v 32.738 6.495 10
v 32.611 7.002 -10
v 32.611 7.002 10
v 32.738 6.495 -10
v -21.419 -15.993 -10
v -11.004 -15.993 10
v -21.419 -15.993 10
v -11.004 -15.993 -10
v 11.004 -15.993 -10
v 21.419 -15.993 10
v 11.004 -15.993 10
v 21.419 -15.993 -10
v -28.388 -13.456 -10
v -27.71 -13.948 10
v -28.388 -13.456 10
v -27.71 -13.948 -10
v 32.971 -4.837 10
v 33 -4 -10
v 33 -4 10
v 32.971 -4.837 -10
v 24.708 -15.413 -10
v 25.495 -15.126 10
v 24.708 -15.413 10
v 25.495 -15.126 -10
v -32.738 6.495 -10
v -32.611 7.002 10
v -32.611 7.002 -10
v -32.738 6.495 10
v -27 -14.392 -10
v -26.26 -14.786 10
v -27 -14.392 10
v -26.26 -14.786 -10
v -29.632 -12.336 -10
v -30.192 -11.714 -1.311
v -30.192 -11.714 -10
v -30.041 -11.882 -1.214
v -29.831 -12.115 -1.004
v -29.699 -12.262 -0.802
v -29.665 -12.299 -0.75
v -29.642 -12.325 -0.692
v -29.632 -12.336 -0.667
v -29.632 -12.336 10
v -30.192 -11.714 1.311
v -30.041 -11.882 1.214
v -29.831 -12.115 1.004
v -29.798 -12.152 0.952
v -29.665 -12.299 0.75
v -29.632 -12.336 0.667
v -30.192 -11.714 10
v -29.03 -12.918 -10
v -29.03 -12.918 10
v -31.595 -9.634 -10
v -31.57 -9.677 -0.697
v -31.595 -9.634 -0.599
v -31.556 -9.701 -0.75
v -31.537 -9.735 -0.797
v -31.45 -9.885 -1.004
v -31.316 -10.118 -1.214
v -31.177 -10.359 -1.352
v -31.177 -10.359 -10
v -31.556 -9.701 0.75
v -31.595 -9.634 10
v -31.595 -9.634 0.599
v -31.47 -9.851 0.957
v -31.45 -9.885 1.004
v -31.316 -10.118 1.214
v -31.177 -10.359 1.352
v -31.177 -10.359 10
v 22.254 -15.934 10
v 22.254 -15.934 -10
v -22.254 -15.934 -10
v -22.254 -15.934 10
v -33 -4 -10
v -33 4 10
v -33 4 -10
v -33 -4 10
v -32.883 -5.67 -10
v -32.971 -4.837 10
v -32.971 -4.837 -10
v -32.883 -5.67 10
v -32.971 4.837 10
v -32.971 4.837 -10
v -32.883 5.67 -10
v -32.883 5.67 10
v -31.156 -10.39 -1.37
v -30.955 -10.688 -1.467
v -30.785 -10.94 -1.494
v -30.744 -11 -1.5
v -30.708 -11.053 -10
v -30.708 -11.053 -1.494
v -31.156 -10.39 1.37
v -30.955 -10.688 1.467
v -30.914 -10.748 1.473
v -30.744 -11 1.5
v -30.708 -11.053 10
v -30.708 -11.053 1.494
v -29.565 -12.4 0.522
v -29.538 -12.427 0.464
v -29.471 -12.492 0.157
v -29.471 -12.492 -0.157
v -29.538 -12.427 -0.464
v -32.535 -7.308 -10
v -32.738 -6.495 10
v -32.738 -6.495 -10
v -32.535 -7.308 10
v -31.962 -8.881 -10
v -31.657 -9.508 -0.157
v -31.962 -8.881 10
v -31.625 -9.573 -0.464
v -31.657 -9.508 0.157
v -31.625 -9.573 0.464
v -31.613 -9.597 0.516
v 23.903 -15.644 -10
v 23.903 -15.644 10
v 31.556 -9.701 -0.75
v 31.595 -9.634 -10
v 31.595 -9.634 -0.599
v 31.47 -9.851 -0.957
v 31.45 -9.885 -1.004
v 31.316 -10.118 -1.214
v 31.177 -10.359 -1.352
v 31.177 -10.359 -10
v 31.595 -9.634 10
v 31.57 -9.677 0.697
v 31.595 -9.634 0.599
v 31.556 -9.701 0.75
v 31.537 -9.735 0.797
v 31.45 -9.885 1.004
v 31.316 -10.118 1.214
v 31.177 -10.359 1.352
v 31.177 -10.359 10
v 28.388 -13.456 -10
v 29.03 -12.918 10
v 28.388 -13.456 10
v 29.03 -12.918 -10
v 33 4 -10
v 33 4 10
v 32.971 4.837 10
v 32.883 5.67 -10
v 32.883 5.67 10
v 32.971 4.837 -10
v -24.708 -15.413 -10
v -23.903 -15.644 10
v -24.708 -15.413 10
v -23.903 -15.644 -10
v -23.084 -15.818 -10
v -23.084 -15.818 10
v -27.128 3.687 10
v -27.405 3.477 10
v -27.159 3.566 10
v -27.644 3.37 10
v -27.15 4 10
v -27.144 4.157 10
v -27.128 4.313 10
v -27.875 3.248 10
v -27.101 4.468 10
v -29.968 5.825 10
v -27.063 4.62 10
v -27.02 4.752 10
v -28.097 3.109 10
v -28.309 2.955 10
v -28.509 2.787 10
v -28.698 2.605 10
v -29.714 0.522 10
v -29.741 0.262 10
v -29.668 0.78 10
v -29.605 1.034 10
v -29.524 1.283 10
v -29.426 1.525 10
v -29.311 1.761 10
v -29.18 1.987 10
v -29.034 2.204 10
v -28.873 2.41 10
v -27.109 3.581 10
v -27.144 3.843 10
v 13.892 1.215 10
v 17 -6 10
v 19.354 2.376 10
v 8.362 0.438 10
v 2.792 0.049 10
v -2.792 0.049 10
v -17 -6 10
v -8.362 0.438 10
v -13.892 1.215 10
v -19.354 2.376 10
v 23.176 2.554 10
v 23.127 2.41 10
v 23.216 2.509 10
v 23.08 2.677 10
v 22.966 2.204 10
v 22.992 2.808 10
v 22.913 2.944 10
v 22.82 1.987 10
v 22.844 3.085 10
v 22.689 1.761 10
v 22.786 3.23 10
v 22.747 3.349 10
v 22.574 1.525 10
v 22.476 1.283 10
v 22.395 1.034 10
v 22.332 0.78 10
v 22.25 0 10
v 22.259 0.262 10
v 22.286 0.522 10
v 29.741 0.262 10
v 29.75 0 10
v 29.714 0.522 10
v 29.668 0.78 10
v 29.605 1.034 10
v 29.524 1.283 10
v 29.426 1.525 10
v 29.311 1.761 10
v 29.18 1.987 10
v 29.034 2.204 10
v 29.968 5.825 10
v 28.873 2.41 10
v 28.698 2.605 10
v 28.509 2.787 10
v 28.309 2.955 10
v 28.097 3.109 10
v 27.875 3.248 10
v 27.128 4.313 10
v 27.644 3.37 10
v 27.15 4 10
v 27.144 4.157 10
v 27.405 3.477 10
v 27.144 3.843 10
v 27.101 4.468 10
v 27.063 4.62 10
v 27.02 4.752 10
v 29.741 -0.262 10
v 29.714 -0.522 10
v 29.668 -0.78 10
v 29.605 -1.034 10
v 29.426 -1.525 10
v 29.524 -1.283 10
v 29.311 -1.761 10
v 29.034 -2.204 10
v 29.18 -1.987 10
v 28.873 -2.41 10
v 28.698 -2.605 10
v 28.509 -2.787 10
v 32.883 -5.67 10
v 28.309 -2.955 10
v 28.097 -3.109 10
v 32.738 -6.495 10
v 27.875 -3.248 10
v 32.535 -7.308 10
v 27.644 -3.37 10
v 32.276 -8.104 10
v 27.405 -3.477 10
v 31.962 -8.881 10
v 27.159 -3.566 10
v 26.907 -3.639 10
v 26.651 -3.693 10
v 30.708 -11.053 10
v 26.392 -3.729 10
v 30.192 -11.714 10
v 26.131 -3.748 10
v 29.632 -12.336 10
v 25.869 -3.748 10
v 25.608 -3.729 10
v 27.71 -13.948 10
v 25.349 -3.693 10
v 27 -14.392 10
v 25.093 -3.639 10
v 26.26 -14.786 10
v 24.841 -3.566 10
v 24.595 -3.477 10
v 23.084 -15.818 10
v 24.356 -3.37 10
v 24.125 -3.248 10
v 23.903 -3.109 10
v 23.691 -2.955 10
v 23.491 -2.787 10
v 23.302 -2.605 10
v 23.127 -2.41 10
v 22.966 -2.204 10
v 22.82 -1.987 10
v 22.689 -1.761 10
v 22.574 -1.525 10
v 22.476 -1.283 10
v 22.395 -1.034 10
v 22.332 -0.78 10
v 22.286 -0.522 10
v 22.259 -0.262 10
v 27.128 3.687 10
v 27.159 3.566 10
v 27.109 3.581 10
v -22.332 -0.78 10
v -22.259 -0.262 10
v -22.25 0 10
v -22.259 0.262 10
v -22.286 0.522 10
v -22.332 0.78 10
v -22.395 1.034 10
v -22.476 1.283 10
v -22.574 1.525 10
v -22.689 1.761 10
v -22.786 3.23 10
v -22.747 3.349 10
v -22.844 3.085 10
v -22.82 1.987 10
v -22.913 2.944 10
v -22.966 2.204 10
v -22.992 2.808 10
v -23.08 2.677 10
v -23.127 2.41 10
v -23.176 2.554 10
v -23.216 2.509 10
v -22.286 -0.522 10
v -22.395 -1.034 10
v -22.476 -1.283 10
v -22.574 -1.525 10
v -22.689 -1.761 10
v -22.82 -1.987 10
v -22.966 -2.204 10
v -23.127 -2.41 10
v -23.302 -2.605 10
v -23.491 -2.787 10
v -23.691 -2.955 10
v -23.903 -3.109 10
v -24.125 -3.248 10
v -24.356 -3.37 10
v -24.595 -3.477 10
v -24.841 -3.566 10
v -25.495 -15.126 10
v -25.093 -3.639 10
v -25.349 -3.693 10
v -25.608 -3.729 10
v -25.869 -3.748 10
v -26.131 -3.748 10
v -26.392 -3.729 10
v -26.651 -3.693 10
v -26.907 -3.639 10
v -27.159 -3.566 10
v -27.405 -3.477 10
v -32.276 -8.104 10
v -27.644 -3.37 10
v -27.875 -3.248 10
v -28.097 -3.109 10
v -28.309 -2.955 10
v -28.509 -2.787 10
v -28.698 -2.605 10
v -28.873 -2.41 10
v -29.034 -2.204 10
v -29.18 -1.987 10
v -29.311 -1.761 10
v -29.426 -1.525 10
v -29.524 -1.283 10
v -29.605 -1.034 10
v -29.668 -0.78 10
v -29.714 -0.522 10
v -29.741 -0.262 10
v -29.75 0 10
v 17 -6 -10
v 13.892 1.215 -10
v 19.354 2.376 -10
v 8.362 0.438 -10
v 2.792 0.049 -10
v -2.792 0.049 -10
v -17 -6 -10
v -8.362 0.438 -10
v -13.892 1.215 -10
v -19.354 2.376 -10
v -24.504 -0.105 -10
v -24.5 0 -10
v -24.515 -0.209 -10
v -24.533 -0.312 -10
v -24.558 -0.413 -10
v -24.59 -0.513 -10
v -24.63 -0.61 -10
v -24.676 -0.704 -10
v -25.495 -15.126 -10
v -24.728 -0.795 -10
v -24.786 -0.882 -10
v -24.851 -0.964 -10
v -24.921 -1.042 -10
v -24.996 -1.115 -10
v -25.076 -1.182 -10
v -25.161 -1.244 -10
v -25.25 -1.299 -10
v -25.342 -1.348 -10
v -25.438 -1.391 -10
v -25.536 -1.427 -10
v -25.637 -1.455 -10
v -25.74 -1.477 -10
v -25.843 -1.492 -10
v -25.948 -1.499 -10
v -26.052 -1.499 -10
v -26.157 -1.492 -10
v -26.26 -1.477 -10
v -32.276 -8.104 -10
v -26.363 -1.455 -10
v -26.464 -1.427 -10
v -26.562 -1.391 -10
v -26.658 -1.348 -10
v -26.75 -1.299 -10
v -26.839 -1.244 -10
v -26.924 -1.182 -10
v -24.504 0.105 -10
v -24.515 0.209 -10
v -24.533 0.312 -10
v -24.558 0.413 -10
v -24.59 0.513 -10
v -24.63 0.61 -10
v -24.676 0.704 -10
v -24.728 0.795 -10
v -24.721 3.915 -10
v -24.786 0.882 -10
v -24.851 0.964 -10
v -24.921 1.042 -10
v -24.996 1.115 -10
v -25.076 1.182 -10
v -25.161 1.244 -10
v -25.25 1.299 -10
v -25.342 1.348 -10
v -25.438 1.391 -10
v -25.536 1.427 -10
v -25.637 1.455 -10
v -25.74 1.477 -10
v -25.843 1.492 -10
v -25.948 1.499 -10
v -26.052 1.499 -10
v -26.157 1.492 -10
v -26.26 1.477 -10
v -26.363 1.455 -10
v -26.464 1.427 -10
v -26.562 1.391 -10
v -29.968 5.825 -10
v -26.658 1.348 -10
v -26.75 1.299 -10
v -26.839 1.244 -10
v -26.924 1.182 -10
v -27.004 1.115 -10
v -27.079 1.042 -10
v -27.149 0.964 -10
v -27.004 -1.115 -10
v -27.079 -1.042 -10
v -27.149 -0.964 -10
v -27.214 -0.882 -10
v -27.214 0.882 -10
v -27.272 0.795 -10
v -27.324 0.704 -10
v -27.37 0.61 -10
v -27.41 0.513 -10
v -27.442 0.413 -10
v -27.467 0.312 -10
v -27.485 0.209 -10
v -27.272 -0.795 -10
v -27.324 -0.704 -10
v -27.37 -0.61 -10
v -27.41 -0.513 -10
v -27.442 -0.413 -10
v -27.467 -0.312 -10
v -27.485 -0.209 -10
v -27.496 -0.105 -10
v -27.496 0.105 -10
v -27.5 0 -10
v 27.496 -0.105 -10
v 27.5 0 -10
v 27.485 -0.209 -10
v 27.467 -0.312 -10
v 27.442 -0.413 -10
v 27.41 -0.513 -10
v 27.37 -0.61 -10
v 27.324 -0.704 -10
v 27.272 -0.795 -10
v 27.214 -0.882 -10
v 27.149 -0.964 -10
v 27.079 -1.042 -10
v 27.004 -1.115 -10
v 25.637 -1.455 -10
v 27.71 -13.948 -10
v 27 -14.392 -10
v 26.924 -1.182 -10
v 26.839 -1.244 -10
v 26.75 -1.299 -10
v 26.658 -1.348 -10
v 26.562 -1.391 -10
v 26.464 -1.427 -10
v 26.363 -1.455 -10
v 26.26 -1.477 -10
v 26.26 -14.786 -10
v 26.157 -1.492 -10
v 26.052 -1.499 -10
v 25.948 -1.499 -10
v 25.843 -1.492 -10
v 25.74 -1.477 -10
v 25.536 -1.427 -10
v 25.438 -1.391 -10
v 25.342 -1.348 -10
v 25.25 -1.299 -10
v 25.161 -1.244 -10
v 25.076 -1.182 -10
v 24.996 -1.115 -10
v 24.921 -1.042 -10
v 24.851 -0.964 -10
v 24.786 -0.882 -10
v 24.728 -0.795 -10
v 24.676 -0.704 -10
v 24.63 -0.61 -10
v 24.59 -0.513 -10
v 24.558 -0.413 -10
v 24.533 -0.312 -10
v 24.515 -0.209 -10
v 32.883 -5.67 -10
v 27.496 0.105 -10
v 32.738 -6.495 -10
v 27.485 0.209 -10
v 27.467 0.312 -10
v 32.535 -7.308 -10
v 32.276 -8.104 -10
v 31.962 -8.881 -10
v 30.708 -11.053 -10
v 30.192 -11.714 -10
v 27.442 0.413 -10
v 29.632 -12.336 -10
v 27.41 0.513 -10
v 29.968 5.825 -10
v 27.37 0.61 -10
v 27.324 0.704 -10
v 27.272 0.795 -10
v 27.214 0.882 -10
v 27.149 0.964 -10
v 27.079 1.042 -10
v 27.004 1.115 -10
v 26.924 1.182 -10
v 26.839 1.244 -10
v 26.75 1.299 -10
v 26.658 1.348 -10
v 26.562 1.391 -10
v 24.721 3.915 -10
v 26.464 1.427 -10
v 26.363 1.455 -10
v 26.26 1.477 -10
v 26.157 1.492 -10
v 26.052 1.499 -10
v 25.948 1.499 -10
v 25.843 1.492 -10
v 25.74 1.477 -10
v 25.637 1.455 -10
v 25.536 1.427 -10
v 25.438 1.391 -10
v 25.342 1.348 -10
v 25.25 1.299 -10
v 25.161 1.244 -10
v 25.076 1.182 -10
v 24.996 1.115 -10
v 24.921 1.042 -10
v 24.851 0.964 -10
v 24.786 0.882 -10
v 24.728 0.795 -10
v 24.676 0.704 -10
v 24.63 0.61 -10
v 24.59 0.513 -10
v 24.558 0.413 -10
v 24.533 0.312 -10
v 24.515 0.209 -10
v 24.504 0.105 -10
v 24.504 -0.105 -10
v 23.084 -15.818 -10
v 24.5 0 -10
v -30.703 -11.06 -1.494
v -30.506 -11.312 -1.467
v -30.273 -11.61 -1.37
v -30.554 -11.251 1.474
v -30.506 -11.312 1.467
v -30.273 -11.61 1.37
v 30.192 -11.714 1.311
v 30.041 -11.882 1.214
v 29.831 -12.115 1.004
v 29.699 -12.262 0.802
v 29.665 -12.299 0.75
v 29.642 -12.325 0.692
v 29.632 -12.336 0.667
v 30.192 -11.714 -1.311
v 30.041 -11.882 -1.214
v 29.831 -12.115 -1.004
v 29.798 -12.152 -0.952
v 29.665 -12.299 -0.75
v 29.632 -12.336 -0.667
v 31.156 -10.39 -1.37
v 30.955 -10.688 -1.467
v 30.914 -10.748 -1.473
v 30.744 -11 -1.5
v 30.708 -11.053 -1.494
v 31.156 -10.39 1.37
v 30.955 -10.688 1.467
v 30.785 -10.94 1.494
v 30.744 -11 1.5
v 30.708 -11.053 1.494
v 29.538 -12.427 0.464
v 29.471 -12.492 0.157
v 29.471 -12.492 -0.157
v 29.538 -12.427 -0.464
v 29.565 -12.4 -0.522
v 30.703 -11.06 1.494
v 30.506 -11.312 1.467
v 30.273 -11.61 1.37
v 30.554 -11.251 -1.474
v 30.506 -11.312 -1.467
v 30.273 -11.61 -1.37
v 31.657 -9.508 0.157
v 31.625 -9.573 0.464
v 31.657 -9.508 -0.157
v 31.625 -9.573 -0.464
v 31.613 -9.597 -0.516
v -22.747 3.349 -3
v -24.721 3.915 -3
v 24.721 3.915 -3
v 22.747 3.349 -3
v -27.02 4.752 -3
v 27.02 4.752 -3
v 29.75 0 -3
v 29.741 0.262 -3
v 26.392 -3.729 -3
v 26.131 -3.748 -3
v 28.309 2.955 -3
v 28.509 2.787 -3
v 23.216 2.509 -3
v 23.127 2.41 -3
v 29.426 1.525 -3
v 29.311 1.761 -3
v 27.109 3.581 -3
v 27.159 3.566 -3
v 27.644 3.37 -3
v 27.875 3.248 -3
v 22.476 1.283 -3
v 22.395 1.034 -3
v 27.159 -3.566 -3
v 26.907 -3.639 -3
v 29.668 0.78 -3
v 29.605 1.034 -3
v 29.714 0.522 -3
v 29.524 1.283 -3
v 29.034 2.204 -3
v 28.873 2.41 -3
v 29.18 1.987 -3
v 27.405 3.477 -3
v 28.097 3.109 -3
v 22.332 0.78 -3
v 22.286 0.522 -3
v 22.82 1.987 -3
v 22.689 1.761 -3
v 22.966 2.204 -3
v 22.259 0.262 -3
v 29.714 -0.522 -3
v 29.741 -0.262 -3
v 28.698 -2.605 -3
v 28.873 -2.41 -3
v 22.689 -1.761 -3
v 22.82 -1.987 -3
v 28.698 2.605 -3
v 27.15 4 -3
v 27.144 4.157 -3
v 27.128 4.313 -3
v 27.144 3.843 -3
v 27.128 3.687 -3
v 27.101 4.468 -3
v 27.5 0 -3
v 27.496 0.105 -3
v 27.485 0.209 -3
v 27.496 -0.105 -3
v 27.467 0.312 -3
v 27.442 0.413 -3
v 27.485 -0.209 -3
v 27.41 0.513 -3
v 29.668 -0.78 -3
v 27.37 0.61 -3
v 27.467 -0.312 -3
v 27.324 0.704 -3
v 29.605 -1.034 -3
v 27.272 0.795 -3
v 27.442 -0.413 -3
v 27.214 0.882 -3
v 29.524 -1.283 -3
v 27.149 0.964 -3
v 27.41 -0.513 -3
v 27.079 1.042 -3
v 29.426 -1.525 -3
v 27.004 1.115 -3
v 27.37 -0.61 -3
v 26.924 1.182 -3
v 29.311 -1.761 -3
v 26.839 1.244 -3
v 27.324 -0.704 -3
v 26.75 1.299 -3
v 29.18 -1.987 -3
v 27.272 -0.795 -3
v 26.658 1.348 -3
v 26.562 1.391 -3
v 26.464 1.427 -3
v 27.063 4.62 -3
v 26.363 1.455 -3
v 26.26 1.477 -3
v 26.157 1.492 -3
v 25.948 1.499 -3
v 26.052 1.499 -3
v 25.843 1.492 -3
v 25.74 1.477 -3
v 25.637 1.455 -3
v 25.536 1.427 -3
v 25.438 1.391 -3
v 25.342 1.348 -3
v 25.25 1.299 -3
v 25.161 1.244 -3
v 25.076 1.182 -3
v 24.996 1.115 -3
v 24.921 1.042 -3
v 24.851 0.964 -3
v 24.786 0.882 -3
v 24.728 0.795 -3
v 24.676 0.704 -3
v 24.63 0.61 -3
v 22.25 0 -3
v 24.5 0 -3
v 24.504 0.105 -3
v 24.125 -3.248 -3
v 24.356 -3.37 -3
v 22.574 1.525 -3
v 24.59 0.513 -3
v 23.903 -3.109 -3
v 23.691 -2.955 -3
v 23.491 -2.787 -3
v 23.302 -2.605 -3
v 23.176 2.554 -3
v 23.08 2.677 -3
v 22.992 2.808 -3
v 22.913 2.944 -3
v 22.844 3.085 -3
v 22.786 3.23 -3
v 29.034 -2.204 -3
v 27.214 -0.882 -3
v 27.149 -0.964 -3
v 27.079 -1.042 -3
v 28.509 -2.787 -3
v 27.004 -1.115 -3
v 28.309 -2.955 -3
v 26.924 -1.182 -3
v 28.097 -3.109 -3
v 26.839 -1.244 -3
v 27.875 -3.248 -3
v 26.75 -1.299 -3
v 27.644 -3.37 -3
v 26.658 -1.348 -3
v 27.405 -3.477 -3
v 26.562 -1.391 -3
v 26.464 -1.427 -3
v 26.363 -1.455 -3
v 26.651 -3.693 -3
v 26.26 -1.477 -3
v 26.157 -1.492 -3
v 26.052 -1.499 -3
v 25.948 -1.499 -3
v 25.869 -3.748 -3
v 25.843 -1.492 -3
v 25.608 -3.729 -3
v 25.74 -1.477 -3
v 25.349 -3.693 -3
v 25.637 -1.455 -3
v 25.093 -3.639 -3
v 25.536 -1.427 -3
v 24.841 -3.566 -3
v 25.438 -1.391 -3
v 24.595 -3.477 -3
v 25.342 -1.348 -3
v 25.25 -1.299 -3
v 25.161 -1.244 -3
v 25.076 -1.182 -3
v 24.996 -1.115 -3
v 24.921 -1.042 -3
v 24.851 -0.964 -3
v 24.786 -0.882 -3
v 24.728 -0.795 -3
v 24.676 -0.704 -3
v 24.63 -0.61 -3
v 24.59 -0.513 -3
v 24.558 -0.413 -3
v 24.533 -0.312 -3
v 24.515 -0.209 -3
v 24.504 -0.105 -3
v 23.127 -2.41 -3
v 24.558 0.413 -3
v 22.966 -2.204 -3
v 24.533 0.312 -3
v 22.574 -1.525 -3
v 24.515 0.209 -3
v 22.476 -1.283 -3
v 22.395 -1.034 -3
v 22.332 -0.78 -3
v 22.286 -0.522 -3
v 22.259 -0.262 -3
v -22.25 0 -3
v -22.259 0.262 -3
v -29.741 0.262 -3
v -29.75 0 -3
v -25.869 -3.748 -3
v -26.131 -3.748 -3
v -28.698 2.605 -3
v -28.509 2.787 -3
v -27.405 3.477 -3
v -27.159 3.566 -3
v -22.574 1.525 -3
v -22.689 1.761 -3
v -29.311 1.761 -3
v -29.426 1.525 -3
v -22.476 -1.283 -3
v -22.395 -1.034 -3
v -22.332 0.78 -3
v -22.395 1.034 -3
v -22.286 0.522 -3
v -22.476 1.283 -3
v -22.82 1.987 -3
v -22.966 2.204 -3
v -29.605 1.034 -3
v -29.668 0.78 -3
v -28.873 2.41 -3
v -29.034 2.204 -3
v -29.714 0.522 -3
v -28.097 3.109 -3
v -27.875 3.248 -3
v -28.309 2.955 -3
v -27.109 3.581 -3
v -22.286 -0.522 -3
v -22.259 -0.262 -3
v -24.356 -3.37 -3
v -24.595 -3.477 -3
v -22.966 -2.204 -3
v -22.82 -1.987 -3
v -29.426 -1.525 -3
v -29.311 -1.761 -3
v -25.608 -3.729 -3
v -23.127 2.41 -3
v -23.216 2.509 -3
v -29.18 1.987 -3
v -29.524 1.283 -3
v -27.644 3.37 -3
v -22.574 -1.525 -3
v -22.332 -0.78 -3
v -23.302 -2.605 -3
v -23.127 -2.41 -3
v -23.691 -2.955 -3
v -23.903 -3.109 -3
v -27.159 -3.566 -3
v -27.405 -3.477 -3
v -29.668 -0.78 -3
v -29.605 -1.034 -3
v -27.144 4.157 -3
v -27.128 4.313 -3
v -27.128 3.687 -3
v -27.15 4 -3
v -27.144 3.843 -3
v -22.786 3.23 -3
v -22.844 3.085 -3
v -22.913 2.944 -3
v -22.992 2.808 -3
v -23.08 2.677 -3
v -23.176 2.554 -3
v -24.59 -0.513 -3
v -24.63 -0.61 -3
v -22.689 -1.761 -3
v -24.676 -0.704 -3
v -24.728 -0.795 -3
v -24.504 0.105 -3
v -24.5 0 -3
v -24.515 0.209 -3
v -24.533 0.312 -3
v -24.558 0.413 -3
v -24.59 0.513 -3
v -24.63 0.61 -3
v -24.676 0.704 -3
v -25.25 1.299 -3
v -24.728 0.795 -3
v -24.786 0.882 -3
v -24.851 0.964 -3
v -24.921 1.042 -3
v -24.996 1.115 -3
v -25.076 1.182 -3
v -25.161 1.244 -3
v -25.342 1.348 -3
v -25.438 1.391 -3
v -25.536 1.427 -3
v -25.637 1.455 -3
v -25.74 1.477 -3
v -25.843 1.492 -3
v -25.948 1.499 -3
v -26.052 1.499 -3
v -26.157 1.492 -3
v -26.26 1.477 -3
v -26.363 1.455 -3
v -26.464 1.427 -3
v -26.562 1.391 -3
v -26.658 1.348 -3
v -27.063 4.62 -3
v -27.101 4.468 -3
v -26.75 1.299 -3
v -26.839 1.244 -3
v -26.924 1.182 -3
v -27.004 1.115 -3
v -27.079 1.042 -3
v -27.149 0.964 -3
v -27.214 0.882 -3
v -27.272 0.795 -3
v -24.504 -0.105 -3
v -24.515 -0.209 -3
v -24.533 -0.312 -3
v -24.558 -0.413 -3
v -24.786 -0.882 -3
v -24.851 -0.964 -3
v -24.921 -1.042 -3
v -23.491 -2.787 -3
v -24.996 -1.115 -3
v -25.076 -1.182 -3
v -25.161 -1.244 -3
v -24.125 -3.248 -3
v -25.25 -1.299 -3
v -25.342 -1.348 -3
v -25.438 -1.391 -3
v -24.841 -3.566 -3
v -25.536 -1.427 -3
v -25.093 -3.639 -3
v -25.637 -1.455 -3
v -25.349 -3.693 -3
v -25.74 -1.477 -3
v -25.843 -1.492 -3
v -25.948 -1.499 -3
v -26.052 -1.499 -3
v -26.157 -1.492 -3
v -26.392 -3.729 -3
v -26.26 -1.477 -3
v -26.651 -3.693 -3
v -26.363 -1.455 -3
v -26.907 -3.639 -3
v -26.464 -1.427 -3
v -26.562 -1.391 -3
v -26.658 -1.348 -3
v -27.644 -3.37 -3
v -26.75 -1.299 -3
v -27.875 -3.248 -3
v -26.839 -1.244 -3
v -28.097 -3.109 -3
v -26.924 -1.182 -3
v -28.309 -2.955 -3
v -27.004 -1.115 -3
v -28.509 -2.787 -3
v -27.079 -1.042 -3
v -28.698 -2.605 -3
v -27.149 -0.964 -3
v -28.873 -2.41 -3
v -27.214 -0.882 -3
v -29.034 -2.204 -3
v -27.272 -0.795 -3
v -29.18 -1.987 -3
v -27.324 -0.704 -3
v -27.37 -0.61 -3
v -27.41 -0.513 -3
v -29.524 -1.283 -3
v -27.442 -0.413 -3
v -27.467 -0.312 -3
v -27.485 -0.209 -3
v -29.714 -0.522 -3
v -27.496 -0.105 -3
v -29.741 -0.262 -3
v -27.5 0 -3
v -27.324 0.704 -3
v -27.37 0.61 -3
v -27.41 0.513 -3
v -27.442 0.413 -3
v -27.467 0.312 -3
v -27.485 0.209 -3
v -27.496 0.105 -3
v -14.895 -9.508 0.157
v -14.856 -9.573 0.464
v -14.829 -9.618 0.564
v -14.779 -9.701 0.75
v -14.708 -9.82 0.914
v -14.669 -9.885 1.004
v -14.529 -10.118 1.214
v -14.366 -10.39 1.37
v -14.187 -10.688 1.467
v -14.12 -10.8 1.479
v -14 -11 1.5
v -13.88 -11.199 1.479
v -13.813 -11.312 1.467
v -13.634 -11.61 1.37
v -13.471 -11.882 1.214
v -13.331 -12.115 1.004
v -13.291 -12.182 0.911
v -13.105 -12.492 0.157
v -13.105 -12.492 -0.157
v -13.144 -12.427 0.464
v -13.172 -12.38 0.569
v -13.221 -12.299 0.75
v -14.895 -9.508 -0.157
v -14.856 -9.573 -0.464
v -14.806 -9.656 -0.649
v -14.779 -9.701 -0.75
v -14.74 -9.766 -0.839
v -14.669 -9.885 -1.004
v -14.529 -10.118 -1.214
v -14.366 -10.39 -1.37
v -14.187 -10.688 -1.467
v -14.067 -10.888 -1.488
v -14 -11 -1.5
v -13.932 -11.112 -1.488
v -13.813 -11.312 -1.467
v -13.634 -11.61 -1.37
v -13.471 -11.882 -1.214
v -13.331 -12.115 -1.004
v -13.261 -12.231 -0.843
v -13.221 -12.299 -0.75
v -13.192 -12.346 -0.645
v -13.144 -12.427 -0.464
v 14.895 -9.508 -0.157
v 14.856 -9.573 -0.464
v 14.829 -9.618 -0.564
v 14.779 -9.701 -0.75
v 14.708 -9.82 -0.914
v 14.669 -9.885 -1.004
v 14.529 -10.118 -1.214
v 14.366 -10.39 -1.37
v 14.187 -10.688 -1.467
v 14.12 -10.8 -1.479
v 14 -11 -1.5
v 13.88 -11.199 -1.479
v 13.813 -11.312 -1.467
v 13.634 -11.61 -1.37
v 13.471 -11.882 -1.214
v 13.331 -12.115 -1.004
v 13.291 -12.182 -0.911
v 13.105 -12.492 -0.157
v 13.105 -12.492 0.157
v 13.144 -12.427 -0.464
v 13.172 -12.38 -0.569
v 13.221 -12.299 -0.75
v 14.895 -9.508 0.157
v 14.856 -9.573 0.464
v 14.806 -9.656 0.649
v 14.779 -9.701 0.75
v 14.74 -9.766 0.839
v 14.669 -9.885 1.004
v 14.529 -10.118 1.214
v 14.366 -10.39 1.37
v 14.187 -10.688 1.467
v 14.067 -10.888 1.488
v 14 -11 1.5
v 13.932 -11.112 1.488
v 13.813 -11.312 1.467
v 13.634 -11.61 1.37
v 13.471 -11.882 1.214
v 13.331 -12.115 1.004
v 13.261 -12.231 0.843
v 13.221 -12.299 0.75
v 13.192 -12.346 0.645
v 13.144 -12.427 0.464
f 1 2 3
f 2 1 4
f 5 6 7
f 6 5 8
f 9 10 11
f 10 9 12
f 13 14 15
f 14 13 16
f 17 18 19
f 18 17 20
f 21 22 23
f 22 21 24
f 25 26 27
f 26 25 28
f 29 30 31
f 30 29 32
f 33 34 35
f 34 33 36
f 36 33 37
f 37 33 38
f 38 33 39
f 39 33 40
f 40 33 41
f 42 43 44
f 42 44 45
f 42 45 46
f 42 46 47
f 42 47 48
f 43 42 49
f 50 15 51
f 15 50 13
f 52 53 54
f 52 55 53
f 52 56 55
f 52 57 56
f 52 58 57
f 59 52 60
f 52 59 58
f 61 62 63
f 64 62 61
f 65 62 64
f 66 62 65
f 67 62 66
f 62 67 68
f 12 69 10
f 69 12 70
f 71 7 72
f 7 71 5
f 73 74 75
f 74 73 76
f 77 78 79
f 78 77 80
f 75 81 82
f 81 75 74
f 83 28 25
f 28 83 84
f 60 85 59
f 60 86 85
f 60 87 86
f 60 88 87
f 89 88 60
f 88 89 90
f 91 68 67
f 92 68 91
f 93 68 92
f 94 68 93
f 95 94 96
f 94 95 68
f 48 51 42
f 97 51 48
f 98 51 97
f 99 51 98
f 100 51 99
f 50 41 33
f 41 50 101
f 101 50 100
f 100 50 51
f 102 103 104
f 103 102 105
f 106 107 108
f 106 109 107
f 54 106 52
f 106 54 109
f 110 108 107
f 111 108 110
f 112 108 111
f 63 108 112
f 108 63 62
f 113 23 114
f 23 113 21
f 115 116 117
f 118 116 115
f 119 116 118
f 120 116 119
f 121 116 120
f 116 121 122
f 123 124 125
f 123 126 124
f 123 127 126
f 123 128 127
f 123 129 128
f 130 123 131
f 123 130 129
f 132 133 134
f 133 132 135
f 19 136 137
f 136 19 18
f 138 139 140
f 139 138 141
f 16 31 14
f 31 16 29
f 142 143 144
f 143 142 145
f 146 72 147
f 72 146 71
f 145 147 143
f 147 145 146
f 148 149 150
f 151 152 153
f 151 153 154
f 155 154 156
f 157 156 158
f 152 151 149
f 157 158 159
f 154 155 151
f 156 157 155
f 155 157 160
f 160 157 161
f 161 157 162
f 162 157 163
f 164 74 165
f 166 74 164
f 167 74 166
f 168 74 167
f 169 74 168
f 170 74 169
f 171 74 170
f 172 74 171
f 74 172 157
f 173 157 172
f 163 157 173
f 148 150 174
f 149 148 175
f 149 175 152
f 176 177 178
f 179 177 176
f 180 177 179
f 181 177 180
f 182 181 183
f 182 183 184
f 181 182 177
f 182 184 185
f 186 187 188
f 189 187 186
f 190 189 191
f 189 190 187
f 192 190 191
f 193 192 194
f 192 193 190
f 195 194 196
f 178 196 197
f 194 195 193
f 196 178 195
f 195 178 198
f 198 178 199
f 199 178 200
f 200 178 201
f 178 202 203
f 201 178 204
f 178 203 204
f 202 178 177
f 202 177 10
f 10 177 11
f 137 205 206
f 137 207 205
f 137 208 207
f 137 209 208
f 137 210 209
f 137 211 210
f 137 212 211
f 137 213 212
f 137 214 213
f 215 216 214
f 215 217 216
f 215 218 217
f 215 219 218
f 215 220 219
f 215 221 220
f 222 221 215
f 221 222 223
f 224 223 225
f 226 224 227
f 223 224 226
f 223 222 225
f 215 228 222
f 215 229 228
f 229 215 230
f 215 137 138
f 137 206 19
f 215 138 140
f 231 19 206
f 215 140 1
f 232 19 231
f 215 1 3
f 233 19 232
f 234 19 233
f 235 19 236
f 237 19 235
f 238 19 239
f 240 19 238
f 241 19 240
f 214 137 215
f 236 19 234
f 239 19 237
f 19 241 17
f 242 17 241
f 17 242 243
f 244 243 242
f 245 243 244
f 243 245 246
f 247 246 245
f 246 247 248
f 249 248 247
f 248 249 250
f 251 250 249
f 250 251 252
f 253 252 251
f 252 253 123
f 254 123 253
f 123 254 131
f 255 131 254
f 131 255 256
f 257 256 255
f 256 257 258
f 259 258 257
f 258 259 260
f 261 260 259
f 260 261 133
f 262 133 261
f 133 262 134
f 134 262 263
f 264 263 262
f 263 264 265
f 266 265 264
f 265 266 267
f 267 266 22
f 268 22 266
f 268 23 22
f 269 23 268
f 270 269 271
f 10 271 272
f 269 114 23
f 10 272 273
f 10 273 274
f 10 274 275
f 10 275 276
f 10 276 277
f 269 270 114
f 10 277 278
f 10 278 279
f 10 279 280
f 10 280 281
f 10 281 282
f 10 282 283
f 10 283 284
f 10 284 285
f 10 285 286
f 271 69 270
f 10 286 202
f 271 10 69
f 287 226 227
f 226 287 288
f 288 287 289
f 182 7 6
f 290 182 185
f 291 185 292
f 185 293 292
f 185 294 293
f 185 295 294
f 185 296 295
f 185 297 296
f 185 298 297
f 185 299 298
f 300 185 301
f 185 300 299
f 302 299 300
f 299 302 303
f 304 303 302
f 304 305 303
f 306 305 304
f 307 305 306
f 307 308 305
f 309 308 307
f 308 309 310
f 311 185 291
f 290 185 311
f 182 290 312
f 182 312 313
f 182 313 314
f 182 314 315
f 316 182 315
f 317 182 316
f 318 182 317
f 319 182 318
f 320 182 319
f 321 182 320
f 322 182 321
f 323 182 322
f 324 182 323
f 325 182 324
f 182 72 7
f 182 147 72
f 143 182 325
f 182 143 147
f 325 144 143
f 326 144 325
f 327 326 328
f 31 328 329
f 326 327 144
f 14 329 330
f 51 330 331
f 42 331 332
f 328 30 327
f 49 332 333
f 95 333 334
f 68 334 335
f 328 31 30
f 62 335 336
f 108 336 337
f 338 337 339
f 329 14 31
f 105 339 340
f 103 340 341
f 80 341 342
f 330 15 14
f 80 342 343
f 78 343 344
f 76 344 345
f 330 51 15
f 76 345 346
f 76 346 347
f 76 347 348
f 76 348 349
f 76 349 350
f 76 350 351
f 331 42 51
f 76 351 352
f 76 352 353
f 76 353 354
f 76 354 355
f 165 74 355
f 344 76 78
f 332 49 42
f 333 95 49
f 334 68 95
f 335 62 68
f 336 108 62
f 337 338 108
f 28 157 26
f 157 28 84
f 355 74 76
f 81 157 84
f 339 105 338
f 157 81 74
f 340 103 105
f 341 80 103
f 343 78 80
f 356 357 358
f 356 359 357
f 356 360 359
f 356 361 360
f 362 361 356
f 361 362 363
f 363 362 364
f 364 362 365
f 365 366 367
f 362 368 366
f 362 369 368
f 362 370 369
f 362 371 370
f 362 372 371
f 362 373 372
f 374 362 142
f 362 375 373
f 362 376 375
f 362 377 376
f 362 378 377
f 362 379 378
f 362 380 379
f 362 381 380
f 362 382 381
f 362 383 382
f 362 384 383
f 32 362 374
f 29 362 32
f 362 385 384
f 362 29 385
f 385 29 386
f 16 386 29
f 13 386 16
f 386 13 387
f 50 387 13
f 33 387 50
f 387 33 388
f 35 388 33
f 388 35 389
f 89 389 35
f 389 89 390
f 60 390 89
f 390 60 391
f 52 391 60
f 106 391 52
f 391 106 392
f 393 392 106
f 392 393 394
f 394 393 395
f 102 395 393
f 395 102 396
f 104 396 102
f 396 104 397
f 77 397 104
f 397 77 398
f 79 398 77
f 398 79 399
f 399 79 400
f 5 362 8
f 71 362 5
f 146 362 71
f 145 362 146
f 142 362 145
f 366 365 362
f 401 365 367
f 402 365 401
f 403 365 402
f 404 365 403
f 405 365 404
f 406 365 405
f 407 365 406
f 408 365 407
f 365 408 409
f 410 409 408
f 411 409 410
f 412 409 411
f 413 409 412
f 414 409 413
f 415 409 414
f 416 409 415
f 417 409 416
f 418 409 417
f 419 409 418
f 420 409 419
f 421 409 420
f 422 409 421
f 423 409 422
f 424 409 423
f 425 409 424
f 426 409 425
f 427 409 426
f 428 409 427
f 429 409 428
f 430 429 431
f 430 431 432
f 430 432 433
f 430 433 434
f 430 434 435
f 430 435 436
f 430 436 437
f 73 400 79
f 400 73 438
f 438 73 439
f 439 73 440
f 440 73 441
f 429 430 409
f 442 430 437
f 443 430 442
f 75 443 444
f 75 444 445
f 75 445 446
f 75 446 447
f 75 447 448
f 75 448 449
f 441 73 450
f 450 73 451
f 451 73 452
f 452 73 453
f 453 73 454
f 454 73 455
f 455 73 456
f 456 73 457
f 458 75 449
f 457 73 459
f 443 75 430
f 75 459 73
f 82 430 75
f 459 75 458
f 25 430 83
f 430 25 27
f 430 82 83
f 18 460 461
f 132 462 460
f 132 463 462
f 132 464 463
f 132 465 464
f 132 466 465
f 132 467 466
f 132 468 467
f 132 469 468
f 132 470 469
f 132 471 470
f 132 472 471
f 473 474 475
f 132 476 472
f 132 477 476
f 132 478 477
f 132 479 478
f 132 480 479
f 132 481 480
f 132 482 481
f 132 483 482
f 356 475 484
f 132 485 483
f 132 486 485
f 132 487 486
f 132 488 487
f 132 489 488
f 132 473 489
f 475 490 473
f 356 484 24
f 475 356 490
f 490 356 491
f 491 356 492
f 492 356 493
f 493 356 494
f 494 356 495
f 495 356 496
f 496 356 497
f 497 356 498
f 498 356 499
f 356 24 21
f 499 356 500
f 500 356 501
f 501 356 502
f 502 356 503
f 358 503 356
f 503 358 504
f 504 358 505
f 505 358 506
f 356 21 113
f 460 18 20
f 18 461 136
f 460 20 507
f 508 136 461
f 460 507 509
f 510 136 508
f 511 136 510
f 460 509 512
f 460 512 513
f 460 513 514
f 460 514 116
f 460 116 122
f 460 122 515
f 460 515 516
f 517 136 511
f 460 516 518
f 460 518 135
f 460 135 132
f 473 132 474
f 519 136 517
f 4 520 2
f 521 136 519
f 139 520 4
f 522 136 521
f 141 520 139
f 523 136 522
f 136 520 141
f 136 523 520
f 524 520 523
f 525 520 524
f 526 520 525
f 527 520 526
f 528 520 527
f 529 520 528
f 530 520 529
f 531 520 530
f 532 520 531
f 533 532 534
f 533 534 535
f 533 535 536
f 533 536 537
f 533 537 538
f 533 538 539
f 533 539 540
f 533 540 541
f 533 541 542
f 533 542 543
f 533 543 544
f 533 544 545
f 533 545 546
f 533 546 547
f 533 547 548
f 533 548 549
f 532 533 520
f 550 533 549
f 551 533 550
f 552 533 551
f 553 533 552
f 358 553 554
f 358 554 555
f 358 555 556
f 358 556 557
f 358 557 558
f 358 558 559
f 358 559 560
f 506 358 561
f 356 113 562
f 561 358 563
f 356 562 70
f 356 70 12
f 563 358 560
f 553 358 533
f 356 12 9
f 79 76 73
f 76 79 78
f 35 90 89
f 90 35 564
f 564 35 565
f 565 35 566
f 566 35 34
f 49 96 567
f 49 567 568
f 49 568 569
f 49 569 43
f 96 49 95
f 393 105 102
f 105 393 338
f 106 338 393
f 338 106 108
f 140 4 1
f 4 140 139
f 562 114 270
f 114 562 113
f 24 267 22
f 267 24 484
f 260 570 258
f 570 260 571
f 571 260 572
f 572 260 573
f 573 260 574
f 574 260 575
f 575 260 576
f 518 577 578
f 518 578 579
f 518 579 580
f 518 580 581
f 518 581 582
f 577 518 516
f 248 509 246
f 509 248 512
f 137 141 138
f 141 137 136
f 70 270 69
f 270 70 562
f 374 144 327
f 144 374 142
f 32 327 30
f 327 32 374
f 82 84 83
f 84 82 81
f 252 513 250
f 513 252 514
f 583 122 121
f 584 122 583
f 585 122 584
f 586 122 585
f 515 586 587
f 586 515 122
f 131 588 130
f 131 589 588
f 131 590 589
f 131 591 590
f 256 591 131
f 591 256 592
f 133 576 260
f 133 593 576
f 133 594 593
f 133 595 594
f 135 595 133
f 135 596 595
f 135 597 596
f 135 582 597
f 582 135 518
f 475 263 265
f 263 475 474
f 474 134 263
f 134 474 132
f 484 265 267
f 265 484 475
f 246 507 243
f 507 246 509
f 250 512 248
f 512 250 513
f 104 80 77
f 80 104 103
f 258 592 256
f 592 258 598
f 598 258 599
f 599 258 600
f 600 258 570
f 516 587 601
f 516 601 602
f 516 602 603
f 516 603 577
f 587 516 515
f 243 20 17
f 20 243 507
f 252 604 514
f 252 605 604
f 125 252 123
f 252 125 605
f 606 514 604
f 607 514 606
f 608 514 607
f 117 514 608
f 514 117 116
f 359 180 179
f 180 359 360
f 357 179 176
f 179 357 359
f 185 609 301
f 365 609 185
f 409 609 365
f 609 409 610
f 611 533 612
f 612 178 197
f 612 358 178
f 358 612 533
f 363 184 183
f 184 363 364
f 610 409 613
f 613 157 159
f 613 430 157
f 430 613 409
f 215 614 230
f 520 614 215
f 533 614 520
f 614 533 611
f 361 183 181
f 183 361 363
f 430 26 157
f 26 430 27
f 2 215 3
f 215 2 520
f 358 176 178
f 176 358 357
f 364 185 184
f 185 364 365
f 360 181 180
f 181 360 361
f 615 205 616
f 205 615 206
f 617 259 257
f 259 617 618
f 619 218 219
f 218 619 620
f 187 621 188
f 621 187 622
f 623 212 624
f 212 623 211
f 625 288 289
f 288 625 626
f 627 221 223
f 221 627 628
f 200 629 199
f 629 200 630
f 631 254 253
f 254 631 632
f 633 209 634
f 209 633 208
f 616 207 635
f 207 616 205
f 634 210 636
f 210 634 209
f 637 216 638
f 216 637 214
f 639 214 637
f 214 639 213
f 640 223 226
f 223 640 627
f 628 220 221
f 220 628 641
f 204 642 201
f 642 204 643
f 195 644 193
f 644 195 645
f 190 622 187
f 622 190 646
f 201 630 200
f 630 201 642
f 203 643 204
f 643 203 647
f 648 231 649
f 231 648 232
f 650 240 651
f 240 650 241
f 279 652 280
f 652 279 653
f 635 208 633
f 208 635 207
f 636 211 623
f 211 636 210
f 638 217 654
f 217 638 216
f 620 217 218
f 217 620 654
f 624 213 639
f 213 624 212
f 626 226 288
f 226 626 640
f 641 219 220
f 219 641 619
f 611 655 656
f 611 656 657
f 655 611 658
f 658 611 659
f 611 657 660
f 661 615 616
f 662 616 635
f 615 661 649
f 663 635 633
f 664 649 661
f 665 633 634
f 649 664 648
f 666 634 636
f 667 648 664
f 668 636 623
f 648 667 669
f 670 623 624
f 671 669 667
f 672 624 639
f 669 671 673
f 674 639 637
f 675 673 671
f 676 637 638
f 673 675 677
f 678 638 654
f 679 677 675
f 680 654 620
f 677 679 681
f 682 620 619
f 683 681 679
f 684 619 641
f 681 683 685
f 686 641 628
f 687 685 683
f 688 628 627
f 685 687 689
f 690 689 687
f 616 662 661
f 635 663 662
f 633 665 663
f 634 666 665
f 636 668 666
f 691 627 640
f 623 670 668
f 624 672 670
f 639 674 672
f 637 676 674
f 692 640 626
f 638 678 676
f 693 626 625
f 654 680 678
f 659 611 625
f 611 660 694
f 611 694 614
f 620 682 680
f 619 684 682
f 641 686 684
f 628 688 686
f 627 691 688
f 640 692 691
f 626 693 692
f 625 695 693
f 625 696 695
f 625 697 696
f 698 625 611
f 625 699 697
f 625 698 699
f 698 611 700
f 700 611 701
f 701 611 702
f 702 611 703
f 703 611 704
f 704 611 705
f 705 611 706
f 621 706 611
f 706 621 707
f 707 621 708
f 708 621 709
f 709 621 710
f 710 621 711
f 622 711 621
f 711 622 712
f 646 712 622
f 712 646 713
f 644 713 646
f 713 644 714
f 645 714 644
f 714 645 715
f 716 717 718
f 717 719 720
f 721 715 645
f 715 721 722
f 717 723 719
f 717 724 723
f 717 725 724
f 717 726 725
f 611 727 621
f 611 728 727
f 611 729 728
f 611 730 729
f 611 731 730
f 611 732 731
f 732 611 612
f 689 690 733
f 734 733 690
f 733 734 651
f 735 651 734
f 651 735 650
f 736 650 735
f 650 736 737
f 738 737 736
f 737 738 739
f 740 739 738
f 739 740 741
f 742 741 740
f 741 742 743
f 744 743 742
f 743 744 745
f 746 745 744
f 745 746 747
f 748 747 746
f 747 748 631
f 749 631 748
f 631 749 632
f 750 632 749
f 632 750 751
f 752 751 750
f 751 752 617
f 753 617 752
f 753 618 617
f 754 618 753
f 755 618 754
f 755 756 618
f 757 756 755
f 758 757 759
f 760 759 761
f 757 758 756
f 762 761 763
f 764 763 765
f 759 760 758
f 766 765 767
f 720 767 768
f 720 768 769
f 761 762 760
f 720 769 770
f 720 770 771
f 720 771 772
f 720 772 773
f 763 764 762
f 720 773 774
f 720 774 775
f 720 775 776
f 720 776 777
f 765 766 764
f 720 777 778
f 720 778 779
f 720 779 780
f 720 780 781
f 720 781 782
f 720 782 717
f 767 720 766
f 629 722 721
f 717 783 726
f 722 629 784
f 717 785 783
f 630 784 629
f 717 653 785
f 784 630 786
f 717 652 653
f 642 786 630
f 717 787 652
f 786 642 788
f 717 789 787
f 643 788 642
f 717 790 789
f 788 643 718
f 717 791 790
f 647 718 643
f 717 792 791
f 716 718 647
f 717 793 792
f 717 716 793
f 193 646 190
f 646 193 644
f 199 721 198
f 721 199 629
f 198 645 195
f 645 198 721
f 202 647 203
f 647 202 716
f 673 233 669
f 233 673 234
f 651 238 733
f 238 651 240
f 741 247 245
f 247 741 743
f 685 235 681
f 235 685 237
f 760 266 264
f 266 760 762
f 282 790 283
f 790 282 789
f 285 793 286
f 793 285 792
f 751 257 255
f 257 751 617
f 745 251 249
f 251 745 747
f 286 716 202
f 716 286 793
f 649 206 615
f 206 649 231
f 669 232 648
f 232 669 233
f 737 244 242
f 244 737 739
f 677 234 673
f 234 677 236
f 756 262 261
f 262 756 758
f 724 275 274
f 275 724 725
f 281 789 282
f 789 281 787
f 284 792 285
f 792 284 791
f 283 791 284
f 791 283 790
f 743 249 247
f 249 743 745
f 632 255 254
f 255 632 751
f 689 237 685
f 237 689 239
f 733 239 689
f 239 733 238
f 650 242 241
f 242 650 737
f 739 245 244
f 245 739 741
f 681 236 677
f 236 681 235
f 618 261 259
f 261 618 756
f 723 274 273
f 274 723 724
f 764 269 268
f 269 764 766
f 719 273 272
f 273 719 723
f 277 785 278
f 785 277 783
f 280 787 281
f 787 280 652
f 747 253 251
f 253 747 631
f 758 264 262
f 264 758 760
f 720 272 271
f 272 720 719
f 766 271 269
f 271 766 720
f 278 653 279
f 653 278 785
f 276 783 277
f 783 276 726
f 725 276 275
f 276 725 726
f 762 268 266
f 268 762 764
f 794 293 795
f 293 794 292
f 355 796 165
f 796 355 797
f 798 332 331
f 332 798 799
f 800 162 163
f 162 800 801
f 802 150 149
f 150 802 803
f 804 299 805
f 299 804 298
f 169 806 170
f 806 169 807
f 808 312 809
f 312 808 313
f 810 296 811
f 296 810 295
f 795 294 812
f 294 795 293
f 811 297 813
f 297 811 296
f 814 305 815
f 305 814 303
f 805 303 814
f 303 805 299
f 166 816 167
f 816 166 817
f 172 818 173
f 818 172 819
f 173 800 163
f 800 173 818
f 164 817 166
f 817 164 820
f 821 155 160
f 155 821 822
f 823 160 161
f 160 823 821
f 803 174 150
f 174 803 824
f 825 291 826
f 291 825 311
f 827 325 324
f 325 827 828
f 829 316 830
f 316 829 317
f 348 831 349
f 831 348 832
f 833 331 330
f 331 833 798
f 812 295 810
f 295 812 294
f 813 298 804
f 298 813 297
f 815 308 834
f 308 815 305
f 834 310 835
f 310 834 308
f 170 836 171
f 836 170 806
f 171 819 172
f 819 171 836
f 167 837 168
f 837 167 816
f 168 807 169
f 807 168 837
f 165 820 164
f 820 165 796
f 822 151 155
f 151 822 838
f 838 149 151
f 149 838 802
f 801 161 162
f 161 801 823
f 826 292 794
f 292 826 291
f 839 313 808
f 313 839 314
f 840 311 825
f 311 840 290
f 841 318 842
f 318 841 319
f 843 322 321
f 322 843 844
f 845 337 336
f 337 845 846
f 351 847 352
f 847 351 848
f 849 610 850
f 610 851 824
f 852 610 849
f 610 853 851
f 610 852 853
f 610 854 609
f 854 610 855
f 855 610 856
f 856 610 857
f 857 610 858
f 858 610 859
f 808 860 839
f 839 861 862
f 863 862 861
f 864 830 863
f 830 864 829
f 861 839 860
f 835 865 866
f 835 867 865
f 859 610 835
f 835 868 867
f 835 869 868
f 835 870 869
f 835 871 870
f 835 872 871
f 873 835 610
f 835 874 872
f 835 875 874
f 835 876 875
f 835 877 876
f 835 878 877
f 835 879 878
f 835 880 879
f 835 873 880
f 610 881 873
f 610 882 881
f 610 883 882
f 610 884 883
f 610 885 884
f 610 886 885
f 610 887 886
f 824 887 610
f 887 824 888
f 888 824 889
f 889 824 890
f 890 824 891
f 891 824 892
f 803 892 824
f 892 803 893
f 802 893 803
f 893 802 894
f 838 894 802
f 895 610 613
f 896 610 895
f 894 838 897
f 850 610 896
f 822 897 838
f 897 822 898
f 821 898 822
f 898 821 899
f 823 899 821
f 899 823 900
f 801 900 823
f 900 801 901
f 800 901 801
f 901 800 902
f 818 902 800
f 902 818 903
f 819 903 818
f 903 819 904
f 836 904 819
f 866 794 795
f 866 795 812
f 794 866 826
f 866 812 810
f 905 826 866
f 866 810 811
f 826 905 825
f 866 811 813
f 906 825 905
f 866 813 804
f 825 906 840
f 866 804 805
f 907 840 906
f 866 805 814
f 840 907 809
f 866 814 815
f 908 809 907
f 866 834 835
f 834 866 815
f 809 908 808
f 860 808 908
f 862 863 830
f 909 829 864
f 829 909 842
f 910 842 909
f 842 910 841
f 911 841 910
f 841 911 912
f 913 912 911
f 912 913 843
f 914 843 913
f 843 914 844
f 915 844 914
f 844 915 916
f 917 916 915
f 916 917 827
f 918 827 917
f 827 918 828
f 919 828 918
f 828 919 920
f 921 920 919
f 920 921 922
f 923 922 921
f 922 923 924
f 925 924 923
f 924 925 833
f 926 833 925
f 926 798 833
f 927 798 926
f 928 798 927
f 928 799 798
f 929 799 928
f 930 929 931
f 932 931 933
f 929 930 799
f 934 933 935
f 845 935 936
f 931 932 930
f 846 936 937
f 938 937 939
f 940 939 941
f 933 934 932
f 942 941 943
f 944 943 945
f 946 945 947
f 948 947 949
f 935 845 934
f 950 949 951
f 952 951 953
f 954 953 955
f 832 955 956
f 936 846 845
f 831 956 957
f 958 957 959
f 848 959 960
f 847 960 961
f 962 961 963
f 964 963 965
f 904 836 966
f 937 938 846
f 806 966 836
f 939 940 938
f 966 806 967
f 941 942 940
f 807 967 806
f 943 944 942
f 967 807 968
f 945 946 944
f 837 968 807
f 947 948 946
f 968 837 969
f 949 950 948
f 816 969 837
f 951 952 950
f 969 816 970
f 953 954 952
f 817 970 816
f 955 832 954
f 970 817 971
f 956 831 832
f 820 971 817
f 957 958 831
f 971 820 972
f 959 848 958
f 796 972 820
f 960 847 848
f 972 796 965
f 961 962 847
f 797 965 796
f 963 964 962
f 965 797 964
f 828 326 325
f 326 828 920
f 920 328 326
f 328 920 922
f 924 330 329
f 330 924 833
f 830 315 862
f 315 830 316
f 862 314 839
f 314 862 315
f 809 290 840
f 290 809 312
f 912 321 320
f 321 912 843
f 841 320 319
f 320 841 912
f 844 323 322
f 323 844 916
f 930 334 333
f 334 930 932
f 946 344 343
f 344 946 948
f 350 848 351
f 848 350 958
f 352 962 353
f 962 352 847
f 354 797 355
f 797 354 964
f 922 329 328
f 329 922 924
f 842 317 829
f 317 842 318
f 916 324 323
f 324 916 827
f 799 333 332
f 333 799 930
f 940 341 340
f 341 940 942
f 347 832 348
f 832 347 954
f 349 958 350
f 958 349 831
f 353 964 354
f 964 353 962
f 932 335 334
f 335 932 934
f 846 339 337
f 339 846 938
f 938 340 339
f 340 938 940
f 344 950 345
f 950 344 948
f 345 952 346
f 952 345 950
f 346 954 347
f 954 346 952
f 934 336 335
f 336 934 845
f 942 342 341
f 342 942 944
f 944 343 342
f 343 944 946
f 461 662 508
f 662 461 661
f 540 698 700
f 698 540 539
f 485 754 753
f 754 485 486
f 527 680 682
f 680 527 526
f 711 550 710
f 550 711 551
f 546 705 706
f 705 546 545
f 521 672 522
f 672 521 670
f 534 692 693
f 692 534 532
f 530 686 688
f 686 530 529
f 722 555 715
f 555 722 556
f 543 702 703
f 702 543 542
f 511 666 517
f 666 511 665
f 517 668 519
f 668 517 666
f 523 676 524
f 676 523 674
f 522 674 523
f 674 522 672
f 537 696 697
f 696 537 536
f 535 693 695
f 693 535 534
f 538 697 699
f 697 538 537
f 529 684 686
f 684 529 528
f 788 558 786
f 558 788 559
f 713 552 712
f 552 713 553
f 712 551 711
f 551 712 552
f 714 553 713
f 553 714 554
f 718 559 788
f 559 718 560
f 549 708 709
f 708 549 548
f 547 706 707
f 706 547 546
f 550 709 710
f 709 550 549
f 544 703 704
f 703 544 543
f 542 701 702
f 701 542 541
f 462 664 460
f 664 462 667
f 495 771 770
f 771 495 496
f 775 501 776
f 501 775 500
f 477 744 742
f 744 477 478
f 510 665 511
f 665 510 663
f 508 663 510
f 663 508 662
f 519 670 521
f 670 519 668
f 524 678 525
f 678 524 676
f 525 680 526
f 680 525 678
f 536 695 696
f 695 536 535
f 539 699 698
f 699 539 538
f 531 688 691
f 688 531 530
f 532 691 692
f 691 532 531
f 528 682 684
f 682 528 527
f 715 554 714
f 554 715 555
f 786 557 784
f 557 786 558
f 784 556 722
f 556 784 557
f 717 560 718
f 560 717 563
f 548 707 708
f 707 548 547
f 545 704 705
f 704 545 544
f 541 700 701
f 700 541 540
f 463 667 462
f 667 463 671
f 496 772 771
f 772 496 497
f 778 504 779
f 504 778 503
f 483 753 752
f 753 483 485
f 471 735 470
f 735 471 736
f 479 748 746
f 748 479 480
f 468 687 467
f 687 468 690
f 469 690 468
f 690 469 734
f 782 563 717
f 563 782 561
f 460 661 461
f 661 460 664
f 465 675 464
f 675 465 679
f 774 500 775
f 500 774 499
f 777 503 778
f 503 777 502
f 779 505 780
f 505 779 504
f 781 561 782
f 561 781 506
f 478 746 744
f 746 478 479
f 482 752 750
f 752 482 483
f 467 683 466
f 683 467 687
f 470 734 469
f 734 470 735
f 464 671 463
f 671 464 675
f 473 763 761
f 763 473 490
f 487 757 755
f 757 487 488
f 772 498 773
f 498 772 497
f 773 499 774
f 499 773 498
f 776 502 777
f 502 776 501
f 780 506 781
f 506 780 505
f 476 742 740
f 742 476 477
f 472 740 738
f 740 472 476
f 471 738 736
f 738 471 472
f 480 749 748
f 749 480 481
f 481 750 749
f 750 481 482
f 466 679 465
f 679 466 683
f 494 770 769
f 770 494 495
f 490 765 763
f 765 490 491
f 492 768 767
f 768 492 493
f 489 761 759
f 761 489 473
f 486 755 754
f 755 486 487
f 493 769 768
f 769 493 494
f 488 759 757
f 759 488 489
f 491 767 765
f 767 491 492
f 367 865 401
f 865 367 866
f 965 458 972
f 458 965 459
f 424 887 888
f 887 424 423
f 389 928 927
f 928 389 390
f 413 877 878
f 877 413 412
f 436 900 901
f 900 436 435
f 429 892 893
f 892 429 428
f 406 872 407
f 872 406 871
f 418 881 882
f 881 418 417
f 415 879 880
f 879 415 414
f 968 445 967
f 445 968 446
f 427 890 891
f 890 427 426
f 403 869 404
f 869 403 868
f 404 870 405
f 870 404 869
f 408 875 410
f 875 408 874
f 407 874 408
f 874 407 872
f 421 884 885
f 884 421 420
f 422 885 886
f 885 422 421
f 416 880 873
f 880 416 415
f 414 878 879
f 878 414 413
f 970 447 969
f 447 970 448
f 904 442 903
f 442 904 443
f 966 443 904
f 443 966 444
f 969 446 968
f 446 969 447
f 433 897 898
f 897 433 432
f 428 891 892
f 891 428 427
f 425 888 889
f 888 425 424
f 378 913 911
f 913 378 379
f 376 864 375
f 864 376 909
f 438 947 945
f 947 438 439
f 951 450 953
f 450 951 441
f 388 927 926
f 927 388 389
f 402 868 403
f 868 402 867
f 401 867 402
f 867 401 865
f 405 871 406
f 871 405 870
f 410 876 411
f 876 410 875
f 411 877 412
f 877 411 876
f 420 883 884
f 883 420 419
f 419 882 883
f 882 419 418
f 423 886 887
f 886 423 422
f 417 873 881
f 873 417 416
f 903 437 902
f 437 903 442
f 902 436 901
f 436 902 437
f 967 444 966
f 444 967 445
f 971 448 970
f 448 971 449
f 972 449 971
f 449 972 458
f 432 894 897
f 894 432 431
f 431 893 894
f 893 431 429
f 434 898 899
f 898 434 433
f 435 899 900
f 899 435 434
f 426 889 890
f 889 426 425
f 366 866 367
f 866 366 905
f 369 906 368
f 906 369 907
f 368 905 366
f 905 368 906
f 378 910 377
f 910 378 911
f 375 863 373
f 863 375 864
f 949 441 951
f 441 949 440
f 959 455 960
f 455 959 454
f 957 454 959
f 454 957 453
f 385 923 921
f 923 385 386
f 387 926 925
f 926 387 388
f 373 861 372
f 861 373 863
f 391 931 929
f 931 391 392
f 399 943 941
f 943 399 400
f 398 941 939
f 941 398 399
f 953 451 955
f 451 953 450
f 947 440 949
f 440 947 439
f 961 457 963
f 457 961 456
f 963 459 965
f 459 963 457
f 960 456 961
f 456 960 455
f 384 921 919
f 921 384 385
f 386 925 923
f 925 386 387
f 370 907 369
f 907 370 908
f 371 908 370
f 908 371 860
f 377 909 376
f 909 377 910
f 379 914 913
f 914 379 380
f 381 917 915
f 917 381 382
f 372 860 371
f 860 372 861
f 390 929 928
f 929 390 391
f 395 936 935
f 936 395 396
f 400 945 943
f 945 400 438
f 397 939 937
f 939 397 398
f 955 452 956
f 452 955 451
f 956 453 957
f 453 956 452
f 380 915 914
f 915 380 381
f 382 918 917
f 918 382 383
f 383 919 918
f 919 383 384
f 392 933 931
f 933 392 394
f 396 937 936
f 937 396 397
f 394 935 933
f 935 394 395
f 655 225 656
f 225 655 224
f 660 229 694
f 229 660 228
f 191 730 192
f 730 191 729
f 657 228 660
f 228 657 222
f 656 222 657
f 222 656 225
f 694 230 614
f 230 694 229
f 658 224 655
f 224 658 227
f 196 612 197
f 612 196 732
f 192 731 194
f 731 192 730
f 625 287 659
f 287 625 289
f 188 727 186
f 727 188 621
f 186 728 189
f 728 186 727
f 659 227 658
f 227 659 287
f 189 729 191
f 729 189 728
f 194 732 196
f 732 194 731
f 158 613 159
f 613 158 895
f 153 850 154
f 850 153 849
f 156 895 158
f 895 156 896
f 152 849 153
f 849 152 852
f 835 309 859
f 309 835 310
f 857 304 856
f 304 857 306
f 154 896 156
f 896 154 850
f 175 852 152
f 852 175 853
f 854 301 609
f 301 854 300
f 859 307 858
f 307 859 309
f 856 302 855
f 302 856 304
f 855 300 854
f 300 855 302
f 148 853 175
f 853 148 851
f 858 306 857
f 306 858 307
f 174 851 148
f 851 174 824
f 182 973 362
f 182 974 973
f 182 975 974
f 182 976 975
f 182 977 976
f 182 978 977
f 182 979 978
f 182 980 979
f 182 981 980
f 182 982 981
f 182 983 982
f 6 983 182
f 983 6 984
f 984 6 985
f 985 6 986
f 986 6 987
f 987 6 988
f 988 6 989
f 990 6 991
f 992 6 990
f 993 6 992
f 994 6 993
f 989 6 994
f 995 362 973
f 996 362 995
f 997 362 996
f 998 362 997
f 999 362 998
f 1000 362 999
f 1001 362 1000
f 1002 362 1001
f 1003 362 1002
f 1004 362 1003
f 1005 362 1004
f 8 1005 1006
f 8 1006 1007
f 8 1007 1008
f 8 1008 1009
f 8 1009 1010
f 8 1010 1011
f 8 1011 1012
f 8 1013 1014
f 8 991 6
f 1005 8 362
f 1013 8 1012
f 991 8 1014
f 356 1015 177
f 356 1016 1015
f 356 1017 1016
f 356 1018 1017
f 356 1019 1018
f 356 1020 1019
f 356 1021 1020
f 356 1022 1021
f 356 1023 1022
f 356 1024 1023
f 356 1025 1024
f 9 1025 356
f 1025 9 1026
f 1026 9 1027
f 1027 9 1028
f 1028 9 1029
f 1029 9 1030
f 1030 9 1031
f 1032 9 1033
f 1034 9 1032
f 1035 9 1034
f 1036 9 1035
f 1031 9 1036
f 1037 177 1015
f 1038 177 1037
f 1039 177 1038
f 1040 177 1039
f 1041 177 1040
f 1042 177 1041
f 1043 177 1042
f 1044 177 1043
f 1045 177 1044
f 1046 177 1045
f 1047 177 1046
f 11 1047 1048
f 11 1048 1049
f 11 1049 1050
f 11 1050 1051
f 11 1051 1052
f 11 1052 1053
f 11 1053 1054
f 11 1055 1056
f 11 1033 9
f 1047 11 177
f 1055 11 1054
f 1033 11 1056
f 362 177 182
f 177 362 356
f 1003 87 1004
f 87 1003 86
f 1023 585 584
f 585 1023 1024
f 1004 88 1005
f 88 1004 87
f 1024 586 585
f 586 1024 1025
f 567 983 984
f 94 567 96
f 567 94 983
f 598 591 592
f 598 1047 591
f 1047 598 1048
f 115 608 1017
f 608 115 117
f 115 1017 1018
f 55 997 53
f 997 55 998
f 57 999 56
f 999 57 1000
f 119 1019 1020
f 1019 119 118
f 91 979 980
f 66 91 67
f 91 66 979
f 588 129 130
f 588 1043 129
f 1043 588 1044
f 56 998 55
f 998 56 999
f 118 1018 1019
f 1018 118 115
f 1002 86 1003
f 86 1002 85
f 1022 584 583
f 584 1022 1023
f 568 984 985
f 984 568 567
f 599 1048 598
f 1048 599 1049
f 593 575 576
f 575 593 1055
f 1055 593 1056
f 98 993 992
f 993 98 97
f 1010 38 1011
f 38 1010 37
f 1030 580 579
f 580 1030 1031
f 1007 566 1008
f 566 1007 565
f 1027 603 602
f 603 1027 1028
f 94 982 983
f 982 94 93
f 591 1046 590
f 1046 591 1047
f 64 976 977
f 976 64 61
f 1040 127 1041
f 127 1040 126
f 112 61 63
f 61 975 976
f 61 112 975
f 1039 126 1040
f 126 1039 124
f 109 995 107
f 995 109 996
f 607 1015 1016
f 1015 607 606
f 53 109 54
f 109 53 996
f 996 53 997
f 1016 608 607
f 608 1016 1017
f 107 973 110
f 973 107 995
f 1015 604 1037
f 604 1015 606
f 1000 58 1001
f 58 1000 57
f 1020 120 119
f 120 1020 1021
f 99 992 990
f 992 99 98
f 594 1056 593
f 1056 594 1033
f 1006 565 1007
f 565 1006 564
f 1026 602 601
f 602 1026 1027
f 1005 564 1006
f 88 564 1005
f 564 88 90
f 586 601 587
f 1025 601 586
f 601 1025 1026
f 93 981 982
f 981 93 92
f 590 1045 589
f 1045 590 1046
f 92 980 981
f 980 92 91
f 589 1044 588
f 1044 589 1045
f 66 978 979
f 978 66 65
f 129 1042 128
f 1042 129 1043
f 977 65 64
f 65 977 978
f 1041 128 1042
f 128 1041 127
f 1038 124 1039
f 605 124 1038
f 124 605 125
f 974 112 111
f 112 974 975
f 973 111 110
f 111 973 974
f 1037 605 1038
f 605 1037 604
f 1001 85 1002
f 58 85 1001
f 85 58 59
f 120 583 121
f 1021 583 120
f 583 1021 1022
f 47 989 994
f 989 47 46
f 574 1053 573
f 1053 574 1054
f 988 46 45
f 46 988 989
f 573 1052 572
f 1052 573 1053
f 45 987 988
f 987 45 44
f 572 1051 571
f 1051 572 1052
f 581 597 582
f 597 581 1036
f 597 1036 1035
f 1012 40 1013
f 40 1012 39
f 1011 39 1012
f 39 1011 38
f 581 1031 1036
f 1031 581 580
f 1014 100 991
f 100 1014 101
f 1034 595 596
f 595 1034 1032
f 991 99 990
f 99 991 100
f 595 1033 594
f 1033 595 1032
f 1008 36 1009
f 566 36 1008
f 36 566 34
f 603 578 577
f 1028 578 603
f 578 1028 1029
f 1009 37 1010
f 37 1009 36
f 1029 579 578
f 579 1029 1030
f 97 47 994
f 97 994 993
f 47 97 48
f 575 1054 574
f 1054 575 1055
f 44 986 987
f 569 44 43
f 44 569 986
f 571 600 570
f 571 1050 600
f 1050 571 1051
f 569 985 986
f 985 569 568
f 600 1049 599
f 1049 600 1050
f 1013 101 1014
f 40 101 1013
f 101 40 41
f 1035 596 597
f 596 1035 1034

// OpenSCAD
$fn=90;
difference(){

minkowski(){
    cube([42,8,10],center=true);
    cylinder(d=24,h=10,center=true);
}

translate([0,80,0])cylinder(d=160,h=22,center=true);

translate([26,0,8])cylinder(d=7.5,h=22,center=true);
translate([-26,0,8])cylinder(d=7.5,h=22,center=true);
translate([26,0,0])cylinder(d=3,h=22,center=true);
translate([-26,0,0])cylinder(d=3,h=22,center=true);
translate([24.9,4,8])cylinder(d=4.5,h=22,center=true);
translate([-24.9,4,8])cylinder(d=4.5,h=22,center=true);

translate([0,-16,0])
linear_extrude (height=26,center=true)
    {
polygon( points=[[-11,0],[11,0],[17,10],[-17,10]]);
    }

translate([0,-11,0])
rotate([0,90,0])
cylinder(d=3,h=100,$fn=30,center=true);
}
